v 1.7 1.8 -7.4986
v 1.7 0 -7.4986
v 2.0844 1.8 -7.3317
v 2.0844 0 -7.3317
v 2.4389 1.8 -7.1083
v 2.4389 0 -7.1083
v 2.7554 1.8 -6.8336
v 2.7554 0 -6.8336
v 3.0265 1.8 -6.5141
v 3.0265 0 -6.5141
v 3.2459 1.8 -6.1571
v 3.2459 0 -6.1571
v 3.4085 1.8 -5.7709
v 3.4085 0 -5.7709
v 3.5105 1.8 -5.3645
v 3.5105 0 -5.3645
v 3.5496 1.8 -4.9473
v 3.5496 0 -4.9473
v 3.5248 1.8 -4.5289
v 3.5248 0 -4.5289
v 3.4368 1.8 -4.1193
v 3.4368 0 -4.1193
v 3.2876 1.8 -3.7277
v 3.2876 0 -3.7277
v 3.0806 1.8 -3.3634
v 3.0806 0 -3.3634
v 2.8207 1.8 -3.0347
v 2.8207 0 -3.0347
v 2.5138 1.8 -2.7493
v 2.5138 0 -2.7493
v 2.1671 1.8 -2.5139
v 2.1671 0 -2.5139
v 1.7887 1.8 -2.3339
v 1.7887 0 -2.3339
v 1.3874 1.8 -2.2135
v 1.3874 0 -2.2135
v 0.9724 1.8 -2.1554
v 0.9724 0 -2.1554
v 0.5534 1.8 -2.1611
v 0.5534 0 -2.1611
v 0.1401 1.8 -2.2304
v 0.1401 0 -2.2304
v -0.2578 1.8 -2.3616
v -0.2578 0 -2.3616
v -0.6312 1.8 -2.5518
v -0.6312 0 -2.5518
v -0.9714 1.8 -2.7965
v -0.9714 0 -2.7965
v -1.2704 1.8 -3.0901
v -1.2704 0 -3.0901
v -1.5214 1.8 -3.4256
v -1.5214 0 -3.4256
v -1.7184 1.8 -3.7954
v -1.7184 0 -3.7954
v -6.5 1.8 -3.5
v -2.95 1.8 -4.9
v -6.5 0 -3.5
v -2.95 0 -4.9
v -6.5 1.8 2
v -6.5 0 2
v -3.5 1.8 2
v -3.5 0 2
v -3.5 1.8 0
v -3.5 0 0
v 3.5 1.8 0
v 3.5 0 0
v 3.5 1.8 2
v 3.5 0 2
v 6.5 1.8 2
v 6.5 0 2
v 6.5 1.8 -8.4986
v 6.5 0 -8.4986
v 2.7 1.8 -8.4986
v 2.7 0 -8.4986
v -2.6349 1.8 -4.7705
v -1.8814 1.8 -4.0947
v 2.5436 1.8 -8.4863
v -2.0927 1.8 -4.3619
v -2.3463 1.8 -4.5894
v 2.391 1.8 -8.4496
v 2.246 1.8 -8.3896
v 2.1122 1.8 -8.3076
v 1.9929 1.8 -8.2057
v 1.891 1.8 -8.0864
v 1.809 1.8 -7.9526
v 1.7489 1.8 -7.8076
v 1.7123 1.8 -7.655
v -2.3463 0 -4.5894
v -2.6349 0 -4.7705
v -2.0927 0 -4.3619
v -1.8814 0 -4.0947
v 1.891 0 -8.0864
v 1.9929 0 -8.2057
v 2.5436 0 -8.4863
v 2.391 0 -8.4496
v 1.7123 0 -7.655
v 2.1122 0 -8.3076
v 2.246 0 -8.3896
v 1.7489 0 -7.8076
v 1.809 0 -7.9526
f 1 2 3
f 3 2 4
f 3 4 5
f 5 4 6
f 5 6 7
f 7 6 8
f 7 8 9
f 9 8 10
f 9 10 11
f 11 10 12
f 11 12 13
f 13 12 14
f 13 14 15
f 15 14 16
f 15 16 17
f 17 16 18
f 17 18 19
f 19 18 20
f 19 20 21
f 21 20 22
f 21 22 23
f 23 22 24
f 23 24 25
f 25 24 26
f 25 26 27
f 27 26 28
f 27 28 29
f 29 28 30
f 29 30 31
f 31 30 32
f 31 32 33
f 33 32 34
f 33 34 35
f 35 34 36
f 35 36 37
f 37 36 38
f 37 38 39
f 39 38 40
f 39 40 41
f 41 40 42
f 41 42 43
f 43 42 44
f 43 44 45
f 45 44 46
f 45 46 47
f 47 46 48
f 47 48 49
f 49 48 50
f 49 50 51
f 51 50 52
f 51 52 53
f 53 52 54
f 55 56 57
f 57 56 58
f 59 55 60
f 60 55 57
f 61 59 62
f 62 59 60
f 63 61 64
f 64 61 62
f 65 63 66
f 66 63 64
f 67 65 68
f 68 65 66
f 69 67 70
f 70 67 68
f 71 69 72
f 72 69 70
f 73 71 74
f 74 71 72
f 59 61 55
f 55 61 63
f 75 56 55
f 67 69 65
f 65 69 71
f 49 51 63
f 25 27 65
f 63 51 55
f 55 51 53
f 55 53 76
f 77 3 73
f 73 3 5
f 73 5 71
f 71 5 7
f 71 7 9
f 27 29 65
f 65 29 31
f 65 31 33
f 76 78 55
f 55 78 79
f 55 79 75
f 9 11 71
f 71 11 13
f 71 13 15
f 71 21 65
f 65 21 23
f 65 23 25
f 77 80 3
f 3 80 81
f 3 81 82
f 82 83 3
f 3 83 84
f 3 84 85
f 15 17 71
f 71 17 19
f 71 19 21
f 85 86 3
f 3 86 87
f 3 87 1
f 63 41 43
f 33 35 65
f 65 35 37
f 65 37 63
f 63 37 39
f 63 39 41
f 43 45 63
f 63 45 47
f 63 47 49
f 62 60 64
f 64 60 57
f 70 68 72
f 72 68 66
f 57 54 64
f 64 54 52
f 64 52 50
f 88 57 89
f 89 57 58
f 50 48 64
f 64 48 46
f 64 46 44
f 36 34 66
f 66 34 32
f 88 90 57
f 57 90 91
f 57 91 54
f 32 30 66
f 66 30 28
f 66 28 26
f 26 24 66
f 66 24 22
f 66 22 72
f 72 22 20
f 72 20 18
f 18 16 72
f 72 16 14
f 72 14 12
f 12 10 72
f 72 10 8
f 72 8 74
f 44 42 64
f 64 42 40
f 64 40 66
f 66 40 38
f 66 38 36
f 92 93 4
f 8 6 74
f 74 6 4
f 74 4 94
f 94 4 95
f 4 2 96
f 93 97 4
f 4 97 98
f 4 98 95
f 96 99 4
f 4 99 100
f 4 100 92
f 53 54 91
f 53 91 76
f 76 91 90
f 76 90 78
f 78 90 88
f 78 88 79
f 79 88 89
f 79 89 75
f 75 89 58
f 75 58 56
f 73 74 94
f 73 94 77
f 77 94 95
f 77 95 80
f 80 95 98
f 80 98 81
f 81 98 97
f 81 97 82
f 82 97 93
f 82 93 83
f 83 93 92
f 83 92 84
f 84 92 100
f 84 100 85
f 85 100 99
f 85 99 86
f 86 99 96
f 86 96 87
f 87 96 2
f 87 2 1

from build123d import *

# Parameters (mm, degrees)
BOSS_EXTRUDE1_DEPTH = 1.8
FILLET1_R           = 2
FILLET3_R           = 1


# Some blends are built 0.0001 mm under size
with BuildPart() as part:
    # Sketch1 → Boss-Extrude1 (new body)
    with BuildSketch(Plane(origin=(0, 0, 0), x_dir=(1, 0, 0), z_dir=(0, 1, 0))):
        with BuildLine():
            Line((6.5, 2.5), (6.5, 0))
            Line((6.5, 0), (6.5, -2))
            Line((6.5, -2), (3.5, -2))
            Line((3.5, -2), (3.5, 0))
            Line((3.5, 0), (-3.5, 0))
            Line((-3.5, 0), (-3.5, -2))
            Line((-3.5, -2), (-6.5, -2))
            Line((-6.5, -2), (-6.5, 0))
            Line((-6.5, 0), (-6.5, 2.5))
            Line((-6.5, 2.5), (-6.5, 3.5))
            Line((-6.5, 3.5), (-2.95, 4.9))
            Line((-2.95, 4.9), (-1.95, 4.9))
            ThreePointArc((-1.95, 4.9), (0.286343304, 2.198397365), (3.358114035, 3.890766339))
            ThreePointArc((3.358114035, 3.890766339), (3.298735092, 6.048400165), (1.7, 7.498557292))
            Line((1.7, 7.498557292), (1.7, 8.498557292))
            Line((1.7, 8.498557292), (6.5, 8.498557292))
            Line((6.5, 8.498557292), (6.5, 4.9))
            Line((6.5, 4.9), (6.5, 2.5))
        make_face()
    extrude(amount=BOSS_EXTRUDE1_DEPTH)

    # Fillet1
    # the kernel refuses this fillet: 2 mm, written as the material it takes off along each edge
    with BuildSketch(Plane(origin=(-1.95, -2.821440468, -4.9), x_dir=(0.20519567041703063, 0, 0.9787209698591859), z_dir=(0, 1, 0))) as fillet1_piece_1:
        with BuildLine():
            CenterArc((1.538967528, -1.95744194), FILLET1_R, 101.840953646, 48.860489585)
            Line((-0.20519567, -0.97872097), (-0.240078934, -0.95914655))
            ThreePointArc((-0.240078934, -0.95914655), (-0.141746674, -0.481152658), (-0.039148839, 0.008207827))
            Line((-0.039148839, 0.008207827), (0.008207827, 0.039148839))
            ThreePointArc((0.008207827, 0.039148839), (0.564288094, -0.018517333), (1.12036836, 0.039148839))
            Line((1.12036836, 0.039148839), (1.128576187, 0))
        make_face()
    extrude(amount=7.442880936, mode=Mode.SUBTRACT)

    # Fillet3
    fillet3_edges = [part.edges().sort_by_distance(p)[0] for p in [
        (1.7, 0.9, -8.498557292),
    ]]
    fillet(fillet3_edges, radius=FILLET3_R - 0.0001)  # a hair under: the kernel refuses the full size


solid = part.part
